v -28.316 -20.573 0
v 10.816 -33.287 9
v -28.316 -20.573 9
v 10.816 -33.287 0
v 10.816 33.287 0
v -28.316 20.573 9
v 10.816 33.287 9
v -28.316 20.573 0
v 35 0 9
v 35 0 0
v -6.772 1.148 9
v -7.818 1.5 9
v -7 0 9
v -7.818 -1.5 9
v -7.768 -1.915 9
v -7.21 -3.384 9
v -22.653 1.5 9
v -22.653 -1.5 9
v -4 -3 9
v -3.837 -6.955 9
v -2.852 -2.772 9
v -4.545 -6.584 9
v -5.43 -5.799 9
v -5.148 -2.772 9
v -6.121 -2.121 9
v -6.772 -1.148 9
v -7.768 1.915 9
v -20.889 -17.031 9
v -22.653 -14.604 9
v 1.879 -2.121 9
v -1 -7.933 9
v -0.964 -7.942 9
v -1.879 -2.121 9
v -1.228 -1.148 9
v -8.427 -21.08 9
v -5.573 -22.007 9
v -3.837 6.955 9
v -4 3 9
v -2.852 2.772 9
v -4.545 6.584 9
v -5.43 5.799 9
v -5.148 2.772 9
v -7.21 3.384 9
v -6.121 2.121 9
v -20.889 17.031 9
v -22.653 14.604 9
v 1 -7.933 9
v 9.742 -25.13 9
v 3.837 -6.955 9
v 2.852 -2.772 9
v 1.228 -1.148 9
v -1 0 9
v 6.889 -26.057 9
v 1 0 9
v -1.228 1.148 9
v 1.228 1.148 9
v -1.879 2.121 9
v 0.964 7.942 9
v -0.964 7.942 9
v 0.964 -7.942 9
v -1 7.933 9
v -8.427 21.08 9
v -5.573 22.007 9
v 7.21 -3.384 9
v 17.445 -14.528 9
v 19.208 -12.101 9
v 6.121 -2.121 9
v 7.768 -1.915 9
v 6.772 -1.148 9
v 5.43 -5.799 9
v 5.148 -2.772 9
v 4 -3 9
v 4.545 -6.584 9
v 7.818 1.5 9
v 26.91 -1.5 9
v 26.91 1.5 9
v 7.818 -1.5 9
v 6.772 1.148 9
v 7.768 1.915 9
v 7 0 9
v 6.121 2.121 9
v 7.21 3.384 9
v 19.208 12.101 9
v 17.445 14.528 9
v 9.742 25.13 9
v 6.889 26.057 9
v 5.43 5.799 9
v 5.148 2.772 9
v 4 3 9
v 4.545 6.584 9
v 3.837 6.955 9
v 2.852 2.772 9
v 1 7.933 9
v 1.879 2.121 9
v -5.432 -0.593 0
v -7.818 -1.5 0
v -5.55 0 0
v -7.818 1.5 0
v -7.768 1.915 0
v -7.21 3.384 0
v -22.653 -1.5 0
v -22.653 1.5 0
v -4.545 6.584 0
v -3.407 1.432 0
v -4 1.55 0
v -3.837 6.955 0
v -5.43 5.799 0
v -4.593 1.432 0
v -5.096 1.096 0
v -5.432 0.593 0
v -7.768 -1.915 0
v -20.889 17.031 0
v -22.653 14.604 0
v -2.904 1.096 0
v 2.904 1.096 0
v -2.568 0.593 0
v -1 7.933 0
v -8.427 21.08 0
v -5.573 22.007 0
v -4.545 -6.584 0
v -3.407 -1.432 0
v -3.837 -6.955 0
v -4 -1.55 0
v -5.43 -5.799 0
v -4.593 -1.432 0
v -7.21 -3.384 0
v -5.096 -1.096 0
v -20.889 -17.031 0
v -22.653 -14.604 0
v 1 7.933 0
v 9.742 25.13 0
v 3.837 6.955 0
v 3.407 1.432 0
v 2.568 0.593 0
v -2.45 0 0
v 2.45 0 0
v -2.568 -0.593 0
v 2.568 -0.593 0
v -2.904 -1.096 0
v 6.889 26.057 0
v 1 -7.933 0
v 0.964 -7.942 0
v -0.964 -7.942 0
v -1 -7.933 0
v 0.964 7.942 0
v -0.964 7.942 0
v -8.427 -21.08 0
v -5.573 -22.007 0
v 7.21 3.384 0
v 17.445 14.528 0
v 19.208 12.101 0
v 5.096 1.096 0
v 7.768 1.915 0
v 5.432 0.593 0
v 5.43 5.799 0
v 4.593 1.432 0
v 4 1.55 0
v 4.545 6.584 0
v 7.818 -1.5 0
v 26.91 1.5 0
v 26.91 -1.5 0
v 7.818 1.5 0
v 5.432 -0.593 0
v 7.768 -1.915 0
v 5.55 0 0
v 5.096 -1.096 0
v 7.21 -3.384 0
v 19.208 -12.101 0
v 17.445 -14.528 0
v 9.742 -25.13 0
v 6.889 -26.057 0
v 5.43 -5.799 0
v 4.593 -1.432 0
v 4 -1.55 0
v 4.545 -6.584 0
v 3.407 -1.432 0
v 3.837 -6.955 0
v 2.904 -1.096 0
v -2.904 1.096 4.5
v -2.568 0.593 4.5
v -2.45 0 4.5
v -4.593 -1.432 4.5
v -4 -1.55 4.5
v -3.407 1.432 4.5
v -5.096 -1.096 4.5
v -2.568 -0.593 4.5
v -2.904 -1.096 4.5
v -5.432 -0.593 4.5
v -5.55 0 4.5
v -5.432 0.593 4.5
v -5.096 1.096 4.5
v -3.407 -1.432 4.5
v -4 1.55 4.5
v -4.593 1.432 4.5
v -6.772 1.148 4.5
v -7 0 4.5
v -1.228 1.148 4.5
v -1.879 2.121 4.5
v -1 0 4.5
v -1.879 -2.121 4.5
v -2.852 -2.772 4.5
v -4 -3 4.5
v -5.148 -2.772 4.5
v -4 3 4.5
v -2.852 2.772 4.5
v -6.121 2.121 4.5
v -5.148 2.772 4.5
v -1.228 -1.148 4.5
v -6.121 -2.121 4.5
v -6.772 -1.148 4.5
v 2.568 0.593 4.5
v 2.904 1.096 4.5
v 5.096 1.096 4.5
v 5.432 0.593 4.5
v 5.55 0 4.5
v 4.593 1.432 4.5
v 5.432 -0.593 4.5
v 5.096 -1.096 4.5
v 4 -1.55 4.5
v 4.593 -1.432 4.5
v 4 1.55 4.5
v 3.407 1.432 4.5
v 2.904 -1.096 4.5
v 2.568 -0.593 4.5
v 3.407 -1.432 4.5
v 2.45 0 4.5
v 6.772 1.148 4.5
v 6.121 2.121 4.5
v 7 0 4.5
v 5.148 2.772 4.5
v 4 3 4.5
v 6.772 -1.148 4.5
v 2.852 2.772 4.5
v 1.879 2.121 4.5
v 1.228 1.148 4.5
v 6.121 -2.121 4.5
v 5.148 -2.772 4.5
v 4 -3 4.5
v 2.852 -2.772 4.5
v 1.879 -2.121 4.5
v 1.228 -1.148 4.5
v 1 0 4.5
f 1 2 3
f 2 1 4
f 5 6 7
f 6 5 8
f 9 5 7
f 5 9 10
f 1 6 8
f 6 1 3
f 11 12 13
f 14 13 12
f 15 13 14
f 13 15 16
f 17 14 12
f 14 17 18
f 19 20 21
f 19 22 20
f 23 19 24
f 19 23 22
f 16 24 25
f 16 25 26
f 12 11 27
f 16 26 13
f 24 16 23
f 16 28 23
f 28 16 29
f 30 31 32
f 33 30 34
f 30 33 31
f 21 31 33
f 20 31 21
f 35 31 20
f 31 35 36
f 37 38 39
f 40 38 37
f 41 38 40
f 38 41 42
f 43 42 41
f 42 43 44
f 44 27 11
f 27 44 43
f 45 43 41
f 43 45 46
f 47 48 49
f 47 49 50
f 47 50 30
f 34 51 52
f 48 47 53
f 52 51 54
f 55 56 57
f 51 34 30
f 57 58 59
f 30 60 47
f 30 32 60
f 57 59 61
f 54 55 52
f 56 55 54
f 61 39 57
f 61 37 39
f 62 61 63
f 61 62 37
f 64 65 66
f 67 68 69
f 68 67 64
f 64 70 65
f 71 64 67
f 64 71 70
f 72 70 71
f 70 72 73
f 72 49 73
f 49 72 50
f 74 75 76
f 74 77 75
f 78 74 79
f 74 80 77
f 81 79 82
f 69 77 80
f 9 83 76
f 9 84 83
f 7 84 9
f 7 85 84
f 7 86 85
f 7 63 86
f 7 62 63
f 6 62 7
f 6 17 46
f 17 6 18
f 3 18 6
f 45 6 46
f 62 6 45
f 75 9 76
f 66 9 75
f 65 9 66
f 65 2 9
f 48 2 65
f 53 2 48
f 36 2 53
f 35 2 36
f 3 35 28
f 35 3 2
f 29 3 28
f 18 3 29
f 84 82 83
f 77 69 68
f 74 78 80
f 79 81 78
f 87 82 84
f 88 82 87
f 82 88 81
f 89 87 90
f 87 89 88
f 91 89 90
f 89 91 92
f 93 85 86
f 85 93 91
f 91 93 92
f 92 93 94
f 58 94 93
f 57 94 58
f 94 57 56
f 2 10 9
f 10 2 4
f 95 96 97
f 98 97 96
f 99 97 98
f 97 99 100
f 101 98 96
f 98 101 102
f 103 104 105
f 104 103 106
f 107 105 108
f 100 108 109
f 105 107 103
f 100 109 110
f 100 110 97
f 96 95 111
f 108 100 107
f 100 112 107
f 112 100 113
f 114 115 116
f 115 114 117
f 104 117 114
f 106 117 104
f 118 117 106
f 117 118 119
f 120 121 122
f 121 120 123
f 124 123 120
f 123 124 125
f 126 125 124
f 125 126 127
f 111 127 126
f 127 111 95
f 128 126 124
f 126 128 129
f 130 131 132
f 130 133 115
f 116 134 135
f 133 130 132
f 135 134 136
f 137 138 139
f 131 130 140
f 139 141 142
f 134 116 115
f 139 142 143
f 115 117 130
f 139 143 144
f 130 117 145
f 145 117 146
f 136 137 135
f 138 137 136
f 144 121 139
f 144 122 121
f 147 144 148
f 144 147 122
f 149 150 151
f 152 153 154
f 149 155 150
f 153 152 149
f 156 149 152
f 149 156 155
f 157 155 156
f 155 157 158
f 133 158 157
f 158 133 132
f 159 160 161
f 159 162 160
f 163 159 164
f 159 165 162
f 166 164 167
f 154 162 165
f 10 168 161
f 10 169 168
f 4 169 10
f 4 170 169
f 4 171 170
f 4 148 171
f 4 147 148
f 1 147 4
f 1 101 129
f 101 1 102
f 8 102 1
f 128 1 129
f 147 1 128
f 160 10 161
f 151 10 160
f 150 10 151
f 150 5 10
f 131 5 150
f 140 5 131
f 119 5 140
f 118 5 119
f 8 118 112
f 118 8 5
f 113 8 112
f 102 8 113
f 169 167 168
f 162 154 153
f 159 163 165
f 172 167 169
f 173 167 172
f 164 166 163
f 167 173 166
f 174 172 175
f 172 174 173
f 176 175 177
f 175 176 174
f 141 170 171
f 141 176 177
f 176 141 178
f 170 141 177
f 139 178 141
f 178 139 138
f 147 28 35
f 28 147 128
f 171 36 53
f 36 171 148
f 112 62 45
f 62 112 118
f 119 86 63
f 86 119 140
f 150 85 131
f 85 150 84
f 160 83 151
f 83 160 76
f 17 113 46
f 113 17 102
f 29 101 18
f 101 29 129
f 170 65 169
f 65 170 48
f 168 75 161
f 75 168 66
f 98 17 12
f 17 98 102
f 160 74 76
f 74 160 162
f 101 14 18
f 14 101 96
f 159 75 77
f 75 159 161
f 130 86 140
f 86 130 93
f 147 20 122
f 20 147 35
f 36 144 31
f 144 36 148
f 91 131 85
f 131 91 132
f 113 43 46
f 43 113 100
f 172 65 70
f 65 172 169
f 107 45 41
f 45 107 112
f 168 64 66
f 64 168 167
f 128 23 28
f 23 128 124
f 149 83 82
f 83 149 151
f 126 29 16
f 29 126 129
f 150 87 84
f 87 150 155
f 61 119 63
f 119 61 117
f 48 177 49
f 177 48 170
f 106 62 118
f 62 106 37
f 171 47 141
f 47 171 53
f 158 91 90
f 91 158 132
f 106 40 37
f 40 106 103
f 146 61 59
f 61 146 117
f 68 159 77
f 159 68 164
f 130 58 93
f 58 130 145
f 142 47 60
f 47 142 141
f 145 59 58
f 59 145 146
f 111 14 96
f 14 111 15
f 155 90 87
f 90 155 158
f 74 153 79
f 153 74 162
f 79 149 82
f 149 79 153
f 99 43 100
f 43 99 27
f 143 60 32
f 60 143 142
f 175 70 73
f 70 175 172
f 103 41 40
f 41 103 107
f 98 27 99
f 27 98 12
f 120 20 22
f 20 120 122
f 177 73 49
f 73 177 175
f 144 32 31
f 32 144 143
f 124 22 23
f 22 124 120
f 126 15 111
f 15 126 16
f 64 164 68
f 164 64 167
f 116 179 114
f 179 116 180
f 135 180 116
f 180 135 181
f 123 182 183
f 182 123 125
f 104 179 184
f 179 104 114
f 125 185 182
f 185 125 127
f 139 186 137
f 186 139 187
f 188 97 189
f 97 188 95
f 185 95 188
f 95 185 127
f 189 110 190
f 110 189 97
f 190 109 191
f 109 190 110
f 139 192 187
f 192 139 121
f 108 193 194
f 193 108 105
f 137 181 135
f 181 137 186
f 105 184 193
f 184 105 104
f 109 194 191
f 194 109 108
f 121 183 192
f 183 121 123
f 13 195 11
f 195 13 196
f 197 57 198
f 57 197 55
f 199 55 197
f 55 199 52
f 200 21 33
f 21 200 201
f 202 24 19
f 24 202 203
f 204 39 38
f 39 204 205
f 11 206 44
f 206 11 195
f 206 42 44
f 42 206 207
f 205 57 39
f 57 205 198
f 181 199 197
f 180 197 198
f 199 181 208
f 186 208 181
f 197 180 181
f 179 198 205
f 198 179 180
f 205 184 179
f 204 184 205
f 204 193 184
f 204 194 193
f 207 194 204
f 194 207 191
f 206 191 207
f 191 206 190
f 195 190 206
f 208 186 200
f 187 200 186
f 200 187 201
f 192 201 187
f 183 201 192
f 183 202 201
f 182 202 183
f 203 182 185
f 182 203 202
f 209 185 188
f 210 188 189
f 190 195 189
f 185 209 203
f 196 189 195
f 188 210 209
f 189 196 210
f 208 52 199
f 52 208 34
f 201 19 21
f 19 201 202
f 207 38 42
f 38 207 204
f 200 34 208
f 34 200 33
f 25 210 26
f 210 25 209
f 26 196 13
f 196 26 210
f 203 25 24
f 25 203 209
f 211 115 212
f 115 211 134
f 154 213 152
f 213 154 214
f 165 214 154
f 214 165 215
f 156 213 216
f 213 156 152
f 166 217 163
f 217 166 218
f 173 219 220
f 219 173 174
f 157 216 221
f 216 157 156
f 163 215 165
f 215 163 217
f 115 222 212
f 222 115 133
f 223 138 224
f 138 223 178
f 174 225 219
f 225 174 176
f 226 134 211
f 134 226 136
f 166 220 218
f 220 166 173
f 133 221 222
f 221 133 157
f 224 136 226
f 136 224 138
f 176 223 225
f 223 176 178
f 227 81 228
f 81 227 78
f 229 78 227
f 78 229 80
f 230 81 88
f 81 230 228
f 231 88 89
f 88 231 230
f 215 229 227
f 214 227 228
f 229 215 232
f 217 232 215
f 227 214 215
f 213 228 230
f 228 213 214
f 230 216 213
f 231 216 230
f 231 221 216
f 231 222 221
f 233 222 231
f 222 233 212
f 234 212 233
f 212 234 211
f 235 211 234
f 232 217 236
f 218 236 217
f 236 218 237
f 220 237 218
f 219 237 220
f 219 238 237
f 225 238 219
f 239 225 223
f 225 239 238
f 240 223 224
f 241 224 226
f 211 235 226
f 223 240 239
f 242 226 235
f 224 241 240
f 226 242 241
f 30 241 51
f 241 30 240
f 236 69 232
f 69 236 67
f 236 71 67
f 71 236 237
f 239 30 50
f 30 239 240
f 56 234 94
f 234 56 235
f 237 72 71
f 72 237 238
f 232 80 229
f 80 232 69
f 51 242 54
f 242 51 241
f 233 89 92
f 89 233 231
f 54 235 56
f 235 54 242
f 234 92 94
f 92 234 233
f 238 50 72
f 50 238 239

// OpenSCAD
height=9;
dia=70;

/*
  dia / 2 = sec / (2*sin(36))
  dia = sec / sin(36)
  dia * sin(36) = sec
  dia *0.588 = sec
*/
module PentagonFrame(dia, height, wall) {
  difference() {
    cylinder(d=dia, h=height, $fn=5);
    translate([0,0,-0.01])
    cylinder(d=dia-wall, h=height+0.02, $fn=5);
  }
}

difference() {
  union() {
    PentagonFrame(dia,height, 14);

    for(w = [0:4] ) {
      rotate([0,0,w*360/5])
      translate([0,0,height/2])
      cube([dia-14,3, height], center=true);
    }
    
    cylinder(d=16, h=height);
  }
  translate([-4,0,0])
  cylinder(d=3.1, h=height*3, center=true, $fn=16);
  translate([-4,0,height/2])
  cylinder(d=6, h=height, $fn=16);
  translate([4,0,0])
  cylinder(d=3.1, h=height*3, center=true, $fn=16);
  translate([4,0,height/2])
  cylinder(d=6, h=height, $fn=16);
  
}
